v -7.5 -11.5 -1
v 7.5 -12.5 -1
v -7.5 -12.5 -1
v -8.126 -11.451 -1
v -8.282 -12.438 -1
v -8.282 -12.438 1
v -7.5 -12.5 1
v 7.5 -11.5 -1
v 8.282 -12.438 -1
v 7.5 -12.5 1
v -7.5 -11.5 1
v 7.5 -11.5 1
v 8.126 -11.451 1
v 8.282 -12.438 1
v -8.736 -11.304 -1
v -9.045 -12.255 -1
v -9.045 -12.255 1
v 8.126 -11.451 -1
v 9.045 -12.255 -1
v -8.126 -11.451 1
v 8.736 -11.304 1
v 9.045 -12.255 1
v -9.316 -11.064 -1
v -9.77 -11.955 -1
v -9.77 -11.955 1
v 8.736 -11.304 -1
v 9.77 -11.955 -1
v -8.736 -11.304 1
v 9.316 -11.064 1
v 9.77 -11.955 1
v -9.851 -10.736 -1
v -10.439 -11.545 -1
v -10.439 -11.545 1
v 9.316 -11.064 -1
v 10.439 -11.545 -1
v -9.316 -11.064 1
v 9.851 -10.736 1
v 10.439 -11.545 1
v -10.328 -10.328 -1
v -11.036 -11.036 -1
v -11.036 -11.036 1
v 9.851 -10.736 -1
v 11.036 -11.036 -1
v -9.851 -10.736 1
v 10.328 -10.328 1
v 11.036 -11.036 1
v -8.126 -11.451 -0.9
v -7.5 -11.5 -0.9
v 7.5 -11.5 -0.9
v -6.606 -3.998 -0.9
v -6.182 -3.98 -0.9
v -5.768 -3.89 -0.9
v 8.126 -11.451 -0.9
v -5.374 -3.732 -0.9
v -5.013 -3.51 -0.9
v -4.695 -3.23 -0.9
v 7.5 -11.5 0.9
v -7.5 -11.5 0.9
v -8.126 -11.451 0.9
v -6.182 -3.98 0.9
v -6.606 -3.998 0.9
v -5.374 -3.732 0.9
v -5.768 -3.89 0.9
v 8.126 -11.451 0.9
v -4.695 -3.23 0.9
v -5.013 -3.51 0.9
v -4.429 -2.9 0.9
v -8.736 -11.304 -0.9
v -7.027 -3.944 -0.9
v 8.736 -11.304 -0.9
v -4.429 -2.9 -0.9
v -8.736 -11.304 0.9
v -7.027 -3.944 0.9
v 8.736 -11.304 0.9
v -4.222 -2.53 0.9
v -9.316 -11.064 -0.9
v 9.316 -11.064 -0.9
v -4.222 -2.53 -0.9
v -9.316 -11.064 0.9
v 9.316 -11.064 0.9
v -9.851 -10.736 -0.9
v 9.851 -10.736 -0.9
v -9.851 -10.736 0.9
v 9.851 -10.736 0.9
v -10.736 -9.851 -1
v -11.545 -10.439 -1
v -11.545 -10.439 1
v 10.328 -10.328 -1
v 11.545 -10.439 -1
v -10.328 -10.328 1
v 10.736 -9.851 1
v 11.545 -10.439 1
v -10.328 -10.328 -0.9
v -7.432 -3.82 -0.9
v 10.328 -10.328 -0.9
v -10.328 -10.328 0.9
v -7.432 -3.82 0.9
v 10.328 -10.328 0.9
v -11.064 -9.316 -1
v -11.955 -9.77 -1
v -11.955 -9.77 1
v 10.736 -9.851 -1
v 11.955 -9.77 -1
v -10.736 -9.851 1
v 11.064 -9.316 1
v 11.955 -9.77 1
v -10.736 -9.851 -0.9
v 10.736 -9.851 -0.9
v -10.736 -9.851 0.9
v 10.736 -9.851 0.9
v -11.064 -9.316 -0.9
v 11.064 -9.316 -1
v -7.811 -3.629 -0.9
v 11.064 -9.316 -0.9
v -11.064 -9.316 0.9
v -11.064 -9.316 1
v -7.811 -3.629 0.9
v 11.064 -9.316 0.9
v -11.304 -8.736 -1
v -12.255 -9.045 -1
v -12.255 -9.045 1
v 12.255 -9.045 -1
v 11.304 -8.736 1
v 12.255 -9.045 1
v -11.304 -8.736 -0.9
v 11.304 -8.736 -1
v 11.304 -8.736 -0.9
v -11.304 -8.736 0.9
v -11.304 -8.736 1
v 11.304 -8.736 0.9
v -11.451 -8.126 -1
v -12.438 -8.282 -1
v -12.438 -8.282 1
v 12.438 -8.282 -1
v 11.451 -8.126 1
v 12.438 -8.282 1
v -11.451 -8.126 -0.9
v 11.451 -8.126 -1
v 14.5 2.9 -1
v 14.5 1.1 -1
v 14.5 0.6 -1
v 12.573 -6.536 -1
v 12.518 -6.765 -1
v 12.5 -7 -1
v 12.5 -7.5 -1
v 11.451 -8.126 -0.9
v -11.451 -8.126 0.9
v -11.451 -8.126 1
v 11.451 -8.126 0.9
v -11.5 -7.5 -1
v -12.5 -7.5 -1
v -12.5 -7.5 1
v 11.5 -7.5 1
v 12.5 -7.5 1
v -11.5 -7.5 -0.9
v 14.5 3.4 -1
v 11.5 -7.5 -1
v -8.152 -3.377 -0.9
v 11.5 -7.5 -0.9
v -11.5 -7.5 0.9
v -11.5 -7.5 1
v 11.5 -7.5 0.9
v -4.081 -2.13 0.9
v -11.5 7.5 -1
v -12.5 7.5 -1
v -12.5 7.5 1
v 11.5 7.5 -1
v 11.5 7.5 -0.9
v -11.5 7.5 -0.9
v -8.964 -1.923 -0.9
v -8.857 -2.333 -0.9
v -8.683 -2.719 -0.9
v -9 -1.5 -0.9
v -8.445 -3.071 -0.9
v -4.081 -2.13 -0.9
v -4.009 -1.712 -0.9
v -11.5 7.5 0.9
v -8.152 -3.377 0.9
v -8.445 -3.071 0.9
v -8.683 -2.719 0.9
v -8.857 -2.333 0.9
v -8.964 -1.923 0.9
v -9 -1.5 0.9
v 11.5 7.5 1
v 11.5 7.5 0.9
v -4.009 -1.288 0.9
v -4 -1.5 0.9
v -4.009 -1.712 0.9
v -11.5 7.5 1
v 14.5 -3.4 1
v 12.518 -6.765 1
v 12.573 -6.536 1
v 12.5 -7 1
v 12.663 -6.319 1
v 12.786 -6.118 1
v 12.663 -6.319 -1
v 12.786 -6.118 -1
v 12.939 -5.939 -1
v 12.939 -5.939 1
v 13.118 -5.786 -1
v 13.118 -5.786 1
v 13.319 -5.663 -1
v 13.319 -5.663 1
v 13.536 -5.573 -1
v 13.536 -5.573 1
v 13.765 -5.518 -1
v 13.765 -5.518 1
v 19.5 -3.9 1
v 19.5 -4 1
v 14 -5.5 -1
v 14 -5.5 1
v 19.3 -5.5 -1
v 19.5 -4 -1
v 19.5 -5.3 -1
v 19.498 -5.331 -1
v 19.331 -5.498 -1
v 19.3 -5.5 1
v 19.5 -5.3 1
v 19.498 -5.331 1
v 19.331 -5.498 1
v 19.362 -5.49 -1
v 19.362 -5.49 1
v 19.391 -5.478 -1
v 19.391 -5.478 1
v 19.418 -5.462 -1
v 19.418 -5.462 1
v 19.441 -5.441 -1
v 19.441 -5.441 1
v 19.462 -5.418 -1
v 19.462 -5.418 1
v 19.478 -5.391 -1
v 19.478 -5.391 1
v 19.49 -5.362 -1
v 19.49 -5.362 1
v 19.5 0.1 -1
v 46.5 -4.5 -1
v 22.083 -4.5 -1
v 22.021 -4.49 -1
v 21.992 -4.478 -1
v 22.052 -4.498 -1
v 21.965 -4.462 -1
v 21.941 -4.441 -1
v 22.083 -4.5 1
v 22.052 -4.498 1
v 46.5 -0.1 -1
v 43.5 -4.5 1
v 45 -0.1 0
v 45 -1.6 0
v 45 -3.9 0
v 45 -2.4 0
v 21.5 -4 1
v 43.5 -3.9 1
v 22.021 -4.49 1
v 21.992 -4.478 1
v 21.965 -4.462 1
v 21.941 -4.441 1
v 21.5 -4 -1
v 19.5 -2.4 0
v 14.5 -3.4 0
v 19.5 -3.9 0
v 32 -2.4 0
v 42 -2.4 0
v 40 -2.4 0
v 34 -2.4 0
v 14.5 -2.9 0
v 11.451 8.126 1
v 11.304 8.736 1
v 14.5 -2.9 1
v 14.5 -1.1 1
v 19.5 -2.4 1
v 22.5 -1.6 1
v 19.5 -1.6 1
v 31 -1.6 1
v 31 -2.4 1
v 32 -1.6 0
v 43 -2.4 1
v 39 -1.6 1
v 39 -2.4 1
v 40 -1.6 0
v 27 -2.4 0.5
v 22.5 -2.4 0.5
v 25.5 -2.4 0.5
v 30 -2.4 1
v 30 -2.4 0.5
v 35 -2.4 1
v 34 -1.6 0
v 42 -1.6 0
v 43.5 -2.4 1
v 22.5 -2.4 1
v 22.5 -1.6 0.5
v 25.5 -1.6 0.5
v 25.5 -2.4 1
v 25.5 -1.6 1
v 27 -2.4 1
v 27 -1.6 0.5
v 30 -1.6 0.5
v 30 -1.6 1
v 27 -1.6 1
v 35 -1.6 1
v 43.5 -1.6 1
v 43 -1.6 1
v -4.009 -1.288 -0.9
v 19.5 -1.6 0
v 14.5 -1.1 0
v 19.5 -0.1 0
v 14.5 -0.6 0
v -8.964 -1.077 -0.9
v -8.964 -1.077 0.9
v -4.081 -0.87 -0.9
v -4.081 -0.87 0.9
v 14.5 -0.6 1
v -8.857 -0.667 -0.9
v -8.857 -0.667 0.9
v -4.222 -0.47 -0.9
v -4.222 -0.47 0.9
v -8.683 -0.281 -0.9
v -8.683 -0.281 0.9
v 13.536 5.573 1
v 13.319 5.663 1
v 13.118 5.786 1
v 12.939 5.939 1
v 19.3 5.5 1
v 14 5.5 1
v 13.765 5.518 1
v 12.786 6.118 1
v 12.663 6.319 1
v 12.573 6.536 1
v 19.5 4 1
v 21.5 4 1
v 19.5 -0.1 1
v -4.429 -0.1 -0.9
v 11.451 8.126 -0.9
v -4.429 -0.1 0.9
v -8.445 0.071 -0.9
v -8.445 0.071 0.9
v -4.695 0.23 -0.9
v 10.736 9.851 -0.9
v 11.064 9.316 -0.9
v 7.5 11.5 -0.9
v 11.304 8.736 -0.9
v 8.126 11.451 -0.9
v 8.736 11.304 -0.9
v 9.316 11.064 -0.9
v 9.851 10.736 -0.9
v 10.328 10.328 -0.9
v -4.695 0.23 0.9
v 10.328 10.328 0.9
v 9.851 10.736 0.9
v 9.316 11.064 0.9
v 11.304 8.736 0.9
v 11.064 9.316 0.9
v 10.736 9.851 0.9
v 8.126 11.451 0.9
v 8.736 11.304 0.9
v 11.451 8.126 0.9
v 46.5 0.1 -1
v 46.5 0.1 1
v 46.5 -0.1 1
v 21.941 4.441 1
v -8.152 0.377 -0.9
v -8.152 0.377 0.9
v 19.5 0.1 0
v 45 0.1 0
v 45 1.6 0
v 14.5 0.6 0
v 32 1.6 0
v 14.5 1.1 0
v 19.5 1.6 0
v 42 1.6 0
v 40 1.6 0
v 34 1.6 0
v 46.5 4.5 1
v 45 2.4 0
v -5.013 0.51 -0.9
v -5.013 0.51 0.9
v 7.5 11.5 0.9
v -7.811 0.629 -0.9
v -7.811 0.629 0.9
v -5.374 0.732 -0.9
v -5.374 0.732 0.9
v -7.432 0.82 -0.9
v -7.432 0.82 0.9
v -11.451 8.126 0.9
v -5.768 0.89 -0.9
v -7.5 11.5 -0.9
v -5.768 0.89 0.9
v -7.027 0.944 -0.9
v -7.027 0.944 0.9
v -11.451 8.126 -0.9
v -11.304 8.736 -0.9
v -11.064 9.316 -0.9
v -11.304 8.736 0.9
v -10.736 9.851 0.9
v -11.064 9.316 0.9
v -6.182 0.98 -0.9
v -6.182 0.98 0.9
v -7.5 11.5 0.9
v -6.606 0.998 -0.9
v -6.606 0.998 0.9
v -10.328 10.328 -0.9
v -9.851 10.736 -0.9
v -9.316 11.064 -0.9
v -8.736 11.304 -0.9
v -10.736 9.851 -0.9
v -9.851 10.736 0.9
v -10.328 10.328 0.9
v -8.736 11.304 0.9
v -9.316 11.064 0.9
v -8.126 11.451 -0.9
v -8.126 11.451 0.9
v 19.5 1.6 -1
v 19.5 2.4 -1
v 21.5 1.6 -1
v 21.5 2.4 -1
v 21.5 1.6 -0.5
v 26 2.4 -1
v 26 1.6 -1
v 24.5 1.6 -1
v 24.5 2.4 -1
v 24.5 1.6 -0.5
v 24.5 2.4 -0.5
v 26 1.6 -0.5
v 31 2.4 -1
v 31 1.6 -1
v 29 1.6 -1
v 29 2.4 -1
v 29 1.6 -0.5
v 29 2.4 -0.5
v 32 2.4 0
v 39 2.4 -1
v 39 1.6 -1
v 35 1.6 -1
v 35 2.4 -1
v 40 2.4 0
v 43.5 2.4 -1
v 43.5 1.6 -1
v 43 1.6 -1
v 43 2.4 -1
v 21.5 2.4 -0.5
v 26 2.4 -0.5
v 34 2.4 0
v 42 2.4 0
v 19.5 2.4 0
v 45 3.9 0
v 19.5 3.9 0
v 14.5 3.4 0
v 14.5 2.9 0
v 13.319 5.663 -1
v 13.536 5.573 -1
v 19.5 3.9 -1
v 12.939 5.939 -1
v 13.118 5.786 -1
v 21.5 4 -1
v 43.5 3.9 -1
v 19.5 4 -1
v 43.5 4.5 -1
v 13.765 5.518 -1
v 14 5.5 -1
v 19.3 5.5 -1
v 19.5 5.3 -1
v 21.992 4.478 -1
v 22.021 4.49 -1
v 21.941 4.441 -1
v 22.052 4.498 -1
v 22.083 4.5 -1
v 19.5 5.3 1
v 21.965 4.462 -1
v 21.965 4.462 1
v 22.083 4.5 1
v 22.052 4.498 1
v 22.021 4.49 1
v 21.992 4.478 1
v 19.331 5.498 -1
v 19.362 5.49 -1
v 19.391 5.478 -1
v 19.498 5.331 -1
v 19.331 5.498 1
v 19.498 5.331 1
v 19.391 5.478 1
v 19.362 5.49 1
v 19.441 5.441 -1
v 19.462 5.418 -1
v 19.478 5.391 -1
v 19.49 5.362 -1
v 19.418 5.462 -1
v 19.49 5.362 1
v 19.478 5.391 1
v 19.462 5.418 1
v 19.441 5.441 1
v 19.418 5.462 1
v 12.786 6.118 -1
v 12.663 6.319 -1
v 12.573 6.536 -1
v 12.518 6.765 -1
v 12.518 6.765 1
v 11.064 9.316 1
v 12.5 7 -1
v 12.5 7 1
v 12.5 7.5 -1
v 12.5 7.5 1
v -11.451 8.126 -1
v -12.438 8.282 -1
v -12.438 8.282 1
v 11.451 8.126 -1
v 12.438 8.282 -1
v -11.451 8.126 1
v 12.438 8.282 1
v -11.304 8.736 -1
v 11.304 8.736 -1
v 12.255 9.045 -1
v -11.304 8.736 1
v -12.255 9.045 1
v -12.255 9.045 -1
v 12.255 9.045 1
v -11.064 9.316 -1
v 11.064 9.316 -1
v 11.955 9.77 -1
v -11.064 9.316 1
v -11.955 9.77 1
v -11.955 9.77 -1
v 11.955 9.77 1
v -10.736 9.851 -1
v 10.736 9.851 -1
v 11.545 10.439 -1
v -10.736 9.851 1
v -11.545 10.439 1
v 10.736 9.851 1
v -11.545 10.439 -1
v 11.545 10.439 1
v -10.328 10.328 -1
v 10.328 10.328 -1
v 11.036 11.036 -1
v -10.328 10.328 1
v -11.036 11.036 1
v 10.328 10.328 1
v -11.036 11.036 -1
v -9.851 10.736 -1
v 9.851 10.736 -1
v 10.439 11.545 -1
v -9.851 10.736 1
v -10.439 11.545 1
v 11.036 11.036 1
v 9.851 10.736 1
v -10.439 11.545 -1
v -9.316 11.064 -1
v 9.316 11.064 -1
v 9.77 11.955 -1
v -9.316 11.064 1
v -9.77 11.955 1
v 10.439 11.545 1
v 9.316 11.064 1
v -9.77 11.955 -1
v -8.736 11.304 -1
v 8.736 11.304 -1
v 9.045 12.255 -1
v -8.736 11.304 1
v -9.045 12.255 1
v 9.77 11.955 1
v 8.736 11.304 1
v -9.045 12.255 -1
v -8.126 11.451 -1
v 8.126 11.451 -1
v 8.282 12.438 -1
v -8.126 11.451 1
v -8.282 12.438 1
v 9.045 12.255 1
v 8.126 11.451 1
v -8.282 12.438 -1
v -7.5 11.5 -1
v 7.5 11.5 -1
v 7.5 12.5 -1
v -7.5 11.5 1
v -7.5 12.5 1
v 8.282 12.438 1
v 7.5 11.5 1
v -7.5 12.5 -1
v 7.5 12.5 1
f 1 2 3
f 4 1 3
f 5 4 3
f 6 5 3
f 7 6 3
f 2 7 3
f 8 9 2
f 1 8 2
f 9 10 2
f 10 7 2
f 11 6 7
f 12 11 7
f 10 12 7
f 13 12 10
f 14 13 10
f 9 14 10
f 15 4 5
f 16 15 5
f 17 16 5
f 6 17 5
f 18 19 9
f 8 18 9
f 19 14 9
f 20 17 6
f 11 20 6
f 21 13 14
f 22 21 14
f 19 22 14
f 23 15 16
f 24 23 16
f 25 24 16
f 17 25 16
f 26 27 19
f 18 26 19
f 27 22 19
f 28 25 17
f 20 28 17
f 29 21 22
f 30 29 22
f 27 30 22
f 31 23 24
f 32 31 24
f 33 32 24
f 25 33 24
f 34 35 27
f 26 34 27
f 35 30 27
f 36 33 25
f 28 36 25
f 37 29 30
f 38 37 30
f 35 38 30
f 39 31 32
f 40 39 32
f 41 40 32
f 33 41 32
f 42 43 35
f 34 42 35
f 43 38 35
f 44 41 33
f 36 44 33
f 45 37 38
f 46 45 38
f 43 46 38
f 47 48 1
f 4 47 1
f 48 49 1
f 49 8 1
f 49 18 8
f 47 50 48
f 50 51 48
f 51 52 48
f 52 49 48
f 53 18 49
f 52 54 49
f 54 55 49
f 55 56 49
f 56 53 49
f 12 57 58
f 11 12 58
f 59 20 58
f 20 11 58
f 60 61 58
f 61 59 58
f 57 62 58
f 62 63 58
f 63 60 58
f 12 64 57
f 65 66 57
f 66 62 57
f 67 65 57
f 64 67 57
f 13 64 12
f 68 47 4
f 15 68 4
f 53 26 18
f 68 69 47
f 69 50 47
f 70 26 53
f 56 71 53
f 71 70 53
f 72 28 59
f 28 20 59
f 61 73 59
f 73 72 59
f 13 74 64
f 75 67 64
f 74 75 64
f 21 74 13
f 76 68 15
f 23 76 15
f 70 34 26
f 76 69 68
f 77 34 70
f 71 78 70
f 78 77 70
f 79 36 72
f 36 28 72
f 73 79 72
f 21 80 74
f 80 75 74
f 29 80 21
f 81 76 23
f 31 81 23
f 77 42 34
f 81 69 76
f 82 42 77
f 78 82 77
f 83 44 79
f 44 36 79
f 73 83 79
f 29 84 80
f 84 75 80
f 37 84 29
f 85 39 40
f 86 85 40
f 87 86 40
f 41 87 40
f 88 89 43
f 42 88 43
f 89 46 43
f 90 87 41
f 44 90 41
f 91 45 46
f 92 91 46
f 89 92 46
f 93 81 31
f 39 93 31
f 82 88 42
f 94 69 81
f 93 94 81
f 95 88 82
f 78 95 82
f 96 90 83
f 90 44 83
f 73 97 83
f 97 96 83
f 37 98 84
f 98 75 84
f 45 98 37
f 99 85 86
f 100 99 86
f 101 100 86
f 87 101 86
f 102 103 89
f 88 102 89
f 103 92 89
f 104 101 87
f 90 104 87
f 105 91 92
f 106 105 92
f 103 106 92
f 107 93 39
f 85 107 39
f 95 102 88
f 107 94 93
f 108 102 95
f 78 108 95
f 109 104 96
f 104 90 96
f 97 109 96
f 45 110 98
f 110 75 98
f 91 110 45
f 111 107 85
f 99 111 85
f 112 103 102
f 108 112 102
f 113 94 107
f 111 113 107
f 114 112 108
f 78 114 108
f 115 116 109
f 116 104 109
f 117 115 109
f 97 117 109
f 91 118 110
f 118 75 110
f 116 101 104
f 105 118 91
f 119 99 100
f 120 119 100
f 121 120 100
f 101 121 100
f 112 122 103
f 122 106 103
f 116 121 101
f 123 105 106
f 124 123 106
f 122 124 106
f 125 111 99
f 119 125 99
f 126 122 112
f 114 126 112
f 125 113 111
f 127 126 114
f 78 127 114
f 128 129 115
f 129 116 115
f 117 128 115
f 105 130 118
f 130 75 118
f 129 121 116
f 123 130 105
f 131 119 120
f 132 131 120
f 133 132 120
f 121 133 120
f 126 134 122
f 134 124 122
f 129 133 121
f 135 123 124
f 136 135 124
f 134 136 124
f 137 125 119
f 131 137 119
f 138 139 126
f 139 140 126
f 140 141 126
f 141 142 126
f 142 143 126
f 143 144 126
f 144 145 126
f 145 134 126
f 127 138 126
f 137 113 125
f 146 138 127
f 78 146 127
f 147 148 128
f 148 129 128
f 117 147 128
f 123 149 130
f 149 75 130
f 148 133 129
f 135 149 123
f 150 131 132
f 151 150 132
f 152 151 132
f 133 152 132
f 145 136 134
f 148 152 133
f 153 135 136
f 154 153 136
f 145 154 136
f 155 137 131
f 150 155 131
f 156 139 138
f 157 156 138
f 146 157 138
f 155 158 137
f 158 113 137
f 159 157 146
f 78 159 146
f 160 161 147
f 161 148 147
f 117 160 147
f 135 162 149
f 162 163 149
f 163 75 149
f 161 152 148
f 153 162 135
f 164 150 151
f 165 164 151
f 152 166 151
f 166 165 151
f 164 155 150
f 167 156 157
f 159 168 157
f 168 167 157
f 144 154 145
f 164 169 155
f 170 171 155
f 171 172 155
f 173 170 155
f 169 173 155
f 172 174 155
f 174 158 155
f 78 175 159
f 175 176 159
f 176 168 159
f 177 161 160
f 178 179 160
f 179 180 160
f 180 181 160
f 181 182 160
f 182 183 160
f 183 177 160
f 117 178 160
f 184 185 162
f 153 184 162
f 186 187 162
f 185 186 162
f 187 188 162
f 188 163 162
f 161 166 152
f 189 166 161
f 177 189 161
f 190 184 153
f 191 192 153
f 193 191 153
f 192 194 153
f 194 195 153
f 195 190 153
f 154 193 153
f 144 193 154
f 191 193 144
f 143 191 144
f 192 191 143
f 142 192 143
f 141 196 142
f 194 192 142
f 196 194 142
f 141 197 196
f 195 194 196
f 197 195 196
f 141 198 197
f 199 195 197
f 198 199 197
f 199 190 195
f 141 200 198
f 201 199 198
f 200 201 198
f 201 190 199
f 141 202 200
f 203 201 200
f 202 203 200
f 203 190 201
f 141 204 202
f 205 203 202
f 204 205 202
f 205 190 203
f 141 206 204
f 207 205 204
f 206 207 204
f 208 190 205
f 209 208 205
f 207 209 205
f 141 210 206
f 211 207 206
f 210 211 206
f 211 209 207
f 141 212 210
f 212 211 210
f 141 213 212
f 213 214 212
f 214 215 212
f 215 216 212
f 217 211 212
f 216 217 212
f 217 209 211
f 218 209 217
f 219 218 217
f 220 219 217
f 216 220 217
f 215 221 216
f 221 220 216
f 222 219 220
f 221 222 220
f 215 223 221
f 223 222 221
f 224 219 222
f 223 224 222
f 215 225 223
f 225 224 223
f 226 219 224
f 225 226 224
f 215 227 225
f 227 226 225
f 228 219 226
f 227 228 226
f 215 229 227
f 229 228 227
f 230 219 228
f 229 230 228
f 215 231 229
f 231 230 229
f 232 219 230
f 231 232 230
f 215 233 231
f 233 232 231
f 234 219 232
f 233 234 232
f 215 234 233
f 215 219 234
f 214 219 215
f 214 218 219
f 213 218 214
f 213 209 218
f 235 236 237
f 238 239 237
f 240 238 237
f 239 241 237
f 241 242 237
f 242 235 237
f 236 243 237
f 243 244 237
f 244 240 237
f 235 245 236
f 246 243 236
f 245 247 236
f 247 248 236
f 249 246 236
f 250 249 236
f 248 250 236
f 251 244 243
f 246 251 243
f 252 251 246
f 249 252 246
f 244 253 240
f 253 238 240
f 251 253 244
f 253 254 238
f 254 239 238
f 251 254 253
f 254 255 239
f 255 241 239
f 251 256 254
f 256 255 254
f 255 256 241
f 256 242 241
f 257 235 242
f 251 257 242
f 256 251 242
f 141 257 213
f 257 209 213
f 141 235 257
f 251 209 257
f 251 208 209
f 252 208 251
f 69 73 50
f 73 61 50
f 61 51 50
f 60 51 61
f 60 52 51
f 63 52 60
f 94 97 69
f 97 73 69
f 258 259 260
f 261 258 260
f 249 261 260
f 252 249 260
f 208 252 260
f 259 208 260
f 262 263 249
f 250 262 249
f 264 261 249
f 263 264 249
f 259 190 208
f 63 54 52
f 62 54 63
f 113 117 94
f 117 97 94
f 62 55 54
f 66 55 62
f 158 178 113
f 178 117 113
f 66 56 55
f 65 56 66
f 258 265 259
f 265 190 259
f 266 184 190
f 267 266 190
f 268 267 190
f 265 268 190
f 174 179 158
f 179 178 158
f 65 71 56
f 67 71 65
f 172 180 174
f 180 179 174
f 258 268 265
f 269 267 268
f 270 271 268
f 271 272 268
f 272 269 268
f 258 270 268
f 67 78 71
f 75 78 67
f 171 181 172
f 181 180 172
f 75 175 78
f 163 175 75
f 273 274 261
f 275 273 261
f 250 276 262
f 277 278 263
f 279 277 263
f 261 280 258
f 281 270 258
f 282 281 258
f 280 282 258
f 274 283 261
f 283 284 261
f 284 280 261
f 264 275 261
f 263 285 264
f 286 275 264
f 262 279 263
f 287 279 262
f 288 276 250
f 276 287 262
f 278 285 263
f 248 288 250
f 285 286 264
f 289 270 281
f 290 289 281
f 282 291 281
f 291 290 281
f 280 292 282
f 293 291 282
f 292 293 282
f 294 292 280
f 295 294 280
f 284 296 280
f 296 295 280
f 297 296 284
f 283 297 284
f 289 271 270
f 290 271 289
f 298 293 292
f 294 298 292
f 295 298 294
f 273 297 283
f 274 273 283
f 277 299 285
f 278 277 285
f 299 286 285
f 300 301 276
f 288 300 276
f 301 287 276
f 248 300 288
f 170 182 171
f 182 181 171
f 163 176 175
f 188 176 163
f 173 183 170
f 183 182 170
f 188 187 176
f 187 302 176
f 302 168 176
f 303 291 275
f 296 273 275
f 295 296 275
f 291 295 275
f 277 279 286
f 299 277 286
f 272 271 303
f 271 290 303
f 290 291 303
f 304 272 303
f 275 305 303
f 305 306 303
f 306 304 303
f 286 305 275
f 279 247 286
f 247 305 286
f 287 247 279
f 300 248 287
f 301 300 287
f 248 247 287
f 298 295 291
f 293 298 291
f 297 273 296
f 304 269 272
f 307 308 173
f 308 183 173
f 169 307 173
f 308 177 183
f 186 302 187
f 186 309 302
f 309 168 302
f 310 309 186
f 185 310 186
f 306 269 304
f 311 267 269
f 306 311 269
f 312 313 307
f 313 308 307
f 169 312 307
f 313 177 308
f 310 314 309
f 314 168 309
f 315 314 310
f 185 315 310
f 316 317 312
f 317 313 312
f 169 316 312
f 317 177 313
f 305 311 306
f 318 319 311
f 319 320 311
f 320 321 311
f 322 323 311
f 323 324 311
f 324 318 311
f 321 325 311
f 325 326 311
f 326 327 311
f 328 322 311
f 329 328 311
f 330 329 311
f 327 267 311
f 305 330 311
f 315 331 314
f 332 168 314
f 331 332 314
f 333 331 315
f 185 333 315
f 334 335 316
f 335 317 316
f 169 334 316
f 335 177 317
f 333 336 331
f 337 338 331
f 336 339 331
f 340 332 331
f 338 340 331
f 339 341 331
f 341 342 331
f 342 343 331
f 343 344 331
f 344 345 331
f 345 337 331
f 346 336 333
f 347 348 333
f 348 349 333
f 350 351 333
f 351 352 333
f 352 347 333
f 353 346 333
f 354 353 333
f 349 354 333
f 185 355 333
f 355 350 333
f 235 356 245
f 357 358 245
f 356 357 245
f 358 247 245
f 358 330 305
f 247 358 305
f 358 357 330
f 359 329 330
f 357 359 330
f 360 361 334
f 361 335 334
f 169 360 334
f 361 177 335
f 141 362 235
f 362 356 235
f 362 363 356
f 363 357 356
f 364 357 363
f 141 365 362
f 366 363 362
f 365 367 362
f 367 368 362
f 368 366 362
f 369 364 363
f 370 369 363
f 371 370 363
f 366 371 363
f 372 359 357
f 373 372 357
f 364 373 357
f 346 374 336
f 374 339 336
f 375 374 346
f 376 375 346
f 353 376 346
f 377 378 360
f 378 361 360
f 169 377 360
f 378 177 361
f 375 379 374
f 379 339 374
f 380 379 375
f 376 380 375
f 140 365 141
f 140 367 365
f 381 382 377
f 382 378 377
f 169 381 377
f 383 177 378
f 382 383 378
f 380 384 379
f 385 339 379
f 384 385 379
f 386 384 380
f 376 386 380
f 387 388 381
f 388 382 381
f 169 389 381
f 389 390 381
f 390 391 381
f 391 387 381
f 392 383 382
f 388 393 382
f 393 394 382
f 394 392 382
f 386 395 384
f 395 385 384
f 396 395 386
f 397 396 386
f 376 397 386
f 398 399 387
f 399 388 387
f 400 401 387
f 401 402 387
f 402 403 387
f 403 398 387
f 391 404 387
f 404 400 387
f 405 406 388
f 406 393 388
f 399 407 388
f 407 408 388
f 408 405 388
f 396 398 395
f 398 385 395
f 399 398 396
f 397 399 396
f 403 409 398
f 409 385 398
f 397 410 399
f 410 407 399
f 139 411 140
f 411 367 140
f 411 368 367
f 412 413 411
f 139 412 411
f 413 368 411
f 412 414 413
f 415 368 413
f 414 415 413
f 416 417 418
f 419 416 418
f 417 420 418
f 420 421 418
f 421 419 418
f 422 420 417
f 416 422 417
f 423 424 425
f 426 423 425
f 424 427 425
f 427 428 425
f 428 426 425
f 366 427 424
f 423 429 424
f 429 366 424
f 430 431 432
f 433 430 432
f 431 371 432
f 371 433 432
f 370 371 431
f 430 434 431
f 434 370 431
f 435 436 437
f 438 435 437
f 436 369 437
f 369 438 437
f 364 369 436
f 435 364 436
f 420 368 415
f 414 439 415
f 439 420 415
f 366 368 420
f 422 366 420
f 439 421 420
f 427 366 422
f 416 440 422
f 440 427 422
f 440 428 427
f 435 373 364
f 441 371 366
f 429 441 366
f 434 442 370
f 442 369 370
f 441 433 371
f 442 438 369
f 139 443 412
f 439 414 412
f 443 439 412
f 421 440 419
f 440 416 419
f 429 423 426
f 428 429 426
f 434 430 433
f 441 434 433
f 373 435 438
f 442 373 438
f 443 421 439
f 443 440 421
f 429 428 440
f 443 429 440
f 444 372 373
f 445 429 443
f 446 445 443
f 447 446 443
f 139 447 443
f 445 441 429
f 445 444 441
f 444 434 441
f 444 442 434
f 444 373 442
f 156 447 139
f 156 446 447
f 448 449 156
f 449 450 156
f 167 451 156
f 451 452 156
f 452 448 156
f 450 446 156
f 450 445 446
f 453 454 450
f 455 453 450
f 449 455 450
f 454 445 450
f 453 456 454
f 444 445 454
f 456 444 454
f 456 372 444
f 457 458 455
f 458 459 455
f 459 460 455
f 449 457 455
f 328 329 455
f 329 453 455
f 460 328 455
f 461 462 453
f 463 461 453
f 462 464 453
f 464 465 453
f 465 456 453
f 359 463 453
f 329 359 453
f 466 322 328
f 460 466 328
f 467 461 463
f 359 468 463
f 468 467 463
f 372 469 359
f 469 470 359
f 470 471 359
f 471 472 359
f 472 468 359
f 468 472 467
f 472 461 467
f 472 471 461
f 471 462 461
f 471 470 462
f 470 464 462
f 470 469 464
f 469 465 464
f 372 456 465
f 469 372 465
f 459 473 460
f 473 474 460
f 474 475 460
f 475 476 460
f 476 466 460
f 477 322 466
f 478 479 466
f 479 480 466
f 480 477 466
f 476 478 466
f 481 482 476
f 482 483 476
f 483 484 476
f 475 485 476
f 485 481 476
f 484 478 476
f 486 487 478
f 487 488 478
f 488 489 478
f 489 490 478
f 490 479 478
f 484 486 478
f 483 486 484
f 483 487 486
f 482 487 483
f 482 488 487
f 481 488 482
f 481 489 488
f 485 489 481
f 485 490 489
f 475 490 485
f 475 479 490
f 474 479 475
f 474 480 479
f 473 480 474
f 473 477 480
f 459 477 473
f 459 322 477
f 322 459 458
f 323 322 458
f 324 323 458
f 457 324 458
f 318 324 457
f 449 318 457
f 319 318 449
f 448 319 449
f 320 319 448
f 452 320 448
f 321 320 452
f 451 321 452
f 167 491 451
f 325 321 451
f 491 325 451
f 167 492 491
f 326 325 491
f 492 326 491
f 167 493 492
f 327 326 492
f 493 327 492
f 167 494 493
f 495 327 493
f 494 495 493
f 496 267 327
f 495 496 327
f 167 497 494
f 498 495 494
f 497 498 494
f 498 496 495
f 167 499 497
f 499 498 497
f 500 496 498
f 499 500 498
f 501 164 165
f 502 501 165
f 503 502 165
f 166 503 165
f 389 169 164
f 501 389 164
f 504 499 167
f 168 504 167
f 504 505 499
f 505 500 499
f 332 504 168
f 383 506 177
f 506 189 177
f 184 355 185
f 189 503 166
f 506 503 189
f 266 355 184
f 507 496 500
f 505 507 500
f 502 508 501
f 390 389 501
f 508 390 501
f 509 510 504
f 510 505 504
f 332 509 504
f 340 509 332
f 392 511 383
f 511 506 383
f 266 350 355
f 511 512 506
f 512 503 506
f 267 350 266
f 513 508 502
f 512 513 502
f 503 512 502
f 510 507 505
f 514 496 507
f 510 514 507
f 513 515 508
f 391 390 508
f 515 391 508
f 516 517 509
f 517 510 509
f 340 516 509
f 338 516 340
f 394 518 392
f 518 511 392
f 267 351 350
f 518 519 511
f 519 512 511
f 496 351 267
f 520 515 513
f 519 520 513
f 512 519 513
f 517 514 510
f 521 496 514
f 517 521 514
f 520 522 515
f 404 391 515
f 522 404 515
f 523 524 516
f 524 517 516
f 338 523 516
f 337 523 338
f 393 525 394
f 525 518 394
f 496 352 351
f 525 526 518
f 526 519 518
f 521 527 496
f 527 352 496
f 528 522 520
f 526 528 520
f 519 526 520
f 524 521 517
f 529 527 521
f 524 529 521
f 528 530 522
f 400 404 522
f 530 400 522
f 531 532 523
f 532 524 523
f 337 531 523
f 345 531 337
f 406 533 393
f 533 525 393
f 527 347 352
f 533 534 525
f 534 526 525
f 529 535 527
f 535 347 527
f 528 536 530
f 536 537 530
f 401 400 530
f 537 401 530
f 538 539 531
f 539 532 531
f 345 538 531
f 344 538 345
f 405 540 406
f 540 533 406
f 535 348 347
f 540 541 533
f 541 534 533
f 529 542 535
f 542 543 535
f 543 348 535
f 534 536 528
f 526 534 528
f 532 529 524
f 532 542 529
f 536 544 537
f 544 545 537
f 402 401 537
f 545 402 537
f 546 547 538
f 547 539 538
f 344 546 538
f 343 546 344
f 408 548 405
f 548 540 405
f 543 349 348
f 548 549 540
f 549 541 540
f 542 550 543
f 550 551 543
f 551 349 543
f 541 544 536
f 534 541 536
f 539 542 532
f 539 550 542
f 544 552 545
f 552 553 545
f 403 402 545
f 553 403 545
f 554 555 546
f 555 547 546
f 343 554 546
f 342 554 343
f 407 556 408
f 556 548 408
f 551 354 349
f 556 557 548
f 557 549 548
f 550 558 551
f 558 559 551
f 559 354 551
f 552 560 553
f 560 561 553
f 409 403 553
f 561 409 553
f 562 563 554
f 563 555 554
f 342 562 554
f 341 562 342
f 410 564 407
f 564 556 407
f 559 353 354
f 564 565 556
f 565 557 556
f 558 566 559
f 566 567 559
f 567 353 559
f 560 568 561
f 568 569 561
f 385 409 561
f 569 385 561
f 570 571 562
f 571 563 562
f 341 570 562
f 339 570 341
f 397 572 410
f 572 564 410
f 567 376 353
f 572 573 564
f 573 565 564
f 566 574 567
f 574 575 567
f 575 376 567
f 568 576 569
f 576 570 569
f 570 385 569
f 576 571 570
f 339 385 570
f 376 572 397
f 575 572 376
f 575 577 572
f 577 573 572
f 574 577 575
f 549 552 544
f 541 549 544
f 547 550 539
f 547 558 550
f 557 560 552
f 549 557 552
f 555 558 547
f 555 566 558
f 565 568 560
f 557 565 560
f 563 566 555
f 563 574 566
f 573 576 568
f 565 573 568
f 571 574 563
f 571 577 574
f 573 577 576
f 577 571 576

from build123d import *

# Parameters (mm, degrees)
SKETCH1_R            = 2.5
BOSS_EXTRUDE1_DEPTH  = 1
CUT_EXTRUDE2_DEPTH   = 0.1
CUT_EXTRUDE3_DEPTH   = 2
FILLET1_R            = 0.2
FILLET1_OF_MIRROR2_R = 0.2
CUT_EXTRUDE4_DEPTH   = 1
LPATTERN1_COUNT      = 2
LPATTERN1_PITCH      = 2.3
SKETCH5_W            = 3
SKETCH5_H            = 0.8
CUT_EXTRUDE5_DEPTH   = 0.5
CUT_EXTRUDE6_DEPTH   = 0.8
CUT_EXTRUDE7_REACH   = 51.52
CUT_EXTRUDE8_DEPTH   = 1
LPATTERN2_COUNT      = 2
LPATTERN2_PITCH      = 2.3
SKETCH9_W            = 3
SKETCH9_H            = 0.8
CUT_EXTRUDE9_DEPTH   = 0.5
CUT_EXTRUDE10_DEPTH  = 0.8
CUT_EXTRUDE11_REACH  = 51.52


with BuildPart() as part:
    # Sketch1 → Boss-Extrude1 (new, symmetric)
    with BuildSketch(Plane.XY):
        with BuildLine():
            Line((-7.5, 12.5), (7.5, 12.5))
            ThreePointArc((7.5, 12.5), (11.035533906, 11.035533906), (12.5, 7.5))
            Line((12.5, 7.5), (12.5, 7))
            ThreePointArc((12.5, 7), (12.939339828, 5.939339828), (14, 5.5))
            Line((14, 5.5), (46.5, 5.5))
            Line((46.5, 5.5), (46.5, -5.5))
            Line((46.5, -5.5), (14, -5.5))
            ThreePointArc((14, -5.5), (12.939339828, -5.939339828), (12.5, -7))
            Line((12.5, -7), (12.5, -7.5))
            ThreePointArc((12.5, -7.5), (11.035533906, -11.035533906), (7.5, -12.5))
            Line((7.5, -12.5), (-7.5, -12.5))
            ThreePointArc((-7.5, -12.5), (-11.035533906, -11.035533906), (-12.5, -7.5))
            Line((-12.5, -7.5), (-12.5, 7.5))
            ThreePointArc((-12.5, 7.5), (-11.035533906, 11.035533906), (-7.5, 12.5))
        make_face()
        with Locations((-6.5, -1.5)):
            Circle(SKETCH1_R, mode=Mode.SUBTRACT)
    extrude(amount=BOSS_EXTRUDE1_DEPTH, both=True)

    # Sketch2 → Cut-Extrude2 (cut)
    with BuildSketch(Plane.XY.offset(1)):
        with BuildLine():
            Line((11.5, 7), (11.5, 7.5))
            ThreePointArc((11.5, 7.5), (10.328427125, 10.328427125), (7.5, 11.5))
            Line((7.5, 11.5), (-7.5, 11.5))
            ThreePointArc((-7.5, 11.5), (-10.328427125, 10.328427125), (-11.5, 7.5))
            Line((-11.5, 7.5), (-11.5, -7.5))
            ThreePointArc((-11.5, -7.5), (-10.328427125, -10.328427125), (-7.5, -11.5))
            Line((-7.5, -11.5), (7.5, -11.5))
            ThreePointArc((7.5, -11.5), (10.328427125, -10.328427125), (11.5, -7.5))
            Line((11.5, -7.5), (11.5, -7))
            Line((11.5, -7), (11.5, 7))
        make_face()
    cut_extrude2 = extrude(amount=-CUT_EXTRUDE2_DEPTH, mode=Mode.SUBTRACT)

    # Mirror1: Cut-Extrude2 across plane
    add(cut_extrude2.mirror(Plane.XY), mode=Mode.SUBTRACT)

    # Sketch3 → Cut-Extrude3 (cut)
    with BuildSketch(Plane.XY.offset(1)):
        Polygon((19.5, 5.5), (19.5, 4), (21.5, 4), (22, 4.5), (46.5, 4.5), (46.5, 5.5), align=None)
    cut_extrude3 = extrude(amount=-CUT_EXTRUDE3_DEPTH, mode=Mode.SUBTRACT)

    # Fillet1
    fillet1_edges = [part.edges().sort_by_distance(p)[0] for p in [
        (19.5, 5.5, 0),
        (22, 4.5, 0),
    ]]
    fillet(fillet1_edges, radius=FILLET1_R)

    # Mirror2: Cut-Extrude3 across plane
    add(cut_extrude3.mirror(Plane.ZX), mode=Mode.SUBTRACT)

    # Fillet1 of Mirror2
    fillet1_of_mirror2_edges = [part.edges().sort_by_distance(p)[0] for p in [
        (19.5, -5.5, 0),
        (22, -4.5, 0),
    ]]
    fillet(fillet1_of_mirror2_edges, radius=FILLET1_OF_MIRROR2_R)

    # Sketch4 → Cut-Extrude4 (cut)
    with BuildSketch(Plane.XY.offset(1)):
        Polygon((46.5, -0.1), (19.5, -0.1), (14.5, -0.6), (14.5, -1.1), (19.5, -1.6), (46.5, -1.6), align=None)
    cut_extrude4 = extrude(amount=-CUT_EXTRUDE4_DEPTH, mode=Mode.SUBTRACT)

    # LPattern1: Cut-Extrude4 ×2
    with Locations(*[(0, -i * LPATTERN1_PITCH, 0) for i in range(1, LPATTERN1_COUNT)]):
        add(cut_extrude4, mode=Mode.SUBTRACT)

    # Sketch5 → Cut-Extrude5 (cut)
    with BuildSketch(Plane.XY.offset(1)):
        with Locations((24, -2)):
            Rectangle(SKETCH5_W, SKETCH5_H)
        with Locations((28.5, -2)):
            Rectangle(SKETCH5_W, SKETCH5_H)
    extrude(amount=-CUT_EXTRUDE5_DEPTH, mode=Mode.SUBTRACT)

    # Sketch6 → Cut-Extrude6 (cut)
    with BuildSketch(Plane.XZ.offset(2.4)):
        Polygon((35, 1), (31, 1), (32, 0), (34, 0), align=None)
        Polygon((43, 1), (39, 1), (40, 0), (42, 0), align=None)
    extrude(amount=-CUT_EXTRUDE6_DEPTH, mode=Mode.SUBTRACT)

    # Cut-Extrude7: up to this face of the body (flat: up to its plane)
    cut_extrude7_end = Plane(part.part.faces().sort_by_distance((33, -0.1, 0.5))[0])
    # Sketch7 → Cut-Extrude7 (cut, up to the picked face)
    with BuildSketch(Plane.XZ.offset(4.5), mode=Mode.PRIVATE) as cut_extrude7_sk1:
        Polygon((46.5, -1), (43.5, 1), (46.5, 1), align=None)
    cut_extrude7_tool1 = split(extrude(cut_extrude7_sk1.sketch, amount=-CUT_EXTRUDE7_REACH, mode=Mode.PRIVATE), bisect_by=cut_extrude7_end, keep=Keep.BOTH, mode=Mode.PRIVATE)
    add(cut_extrude7_tool1.solids().sort_by(Axis((45.5, -4.5, 0.333333), (0, 1, 0)))[0], mode=Mode.SUBTRACT)

    # Sketch8 → Cut-Extrude8 (cut)
    with BuildSketch(Plane(origin=(0, 0, -1), x_dir=(-1, 0, 0), z_dir=(0, 0, -1))):
        Polygon((-46.5, 0.1), (-19.5, 0.1), (-14.5, 0.6), (-14.5, 1.1), (-19.5, 1.6), (-46.5, 1.6), align=None)
    cut_extrude8 = extrude(amount=-CUT_EXTRUDE8_DEPTH, mode=Mode.SUBTRACT)

    # LPattern2: Cut-Extrude8 ×2
    with Locations(*[(0, i * LPATTERN2_PITCH, 0) for i in range(1, LPATTERN2_COUNT)]):
        add(cut_extrude8, mode=Mode.SUBTRACT)

    # Sketch9 → Cut-Extrude9 (cut)
    with BuildSketch(Plane(origin=(0, 0, -1), x_dir=(-1, 0, 0), z_dir=(0, 0, -1))):
        with Locations((-23, 2)):
            Rectangle(SKETCH9_W, SKETCH9_H)
        with Locations((-27.5, 2)):
            Rectangle(SKETCH9_W, SKETCH9_H)
    extrude(amount=-CUT_EXTRUDE9_DEPTH, mode=Mode.SUBTRACT)

    # Sketch10 → Cut-Extrude10 (cut)
    with BuildSketch(Plane(origin=(0, 2.4, 0), x_dir=(1, 0, 0), z_dir=(0, 1, 0))):
        Polygon((31, 1), (32, 0), (34, 0), (35, 1), align=None)
        Polygon((39, 1), (40, 0), (42, 0), (43, 1), align=None)
    extrude(amount=-CUT_EXTRUDE10_DEPTH, mode=Mode.SUBTRACT)

    # Cut-Extrude11: up to this face of the body (flat: up to its plane)
    cut_extrude11_end = Plane(part.part.faces().sort_by_distance((33, 0.1, -0.5))[0])
    # Sketch11 → Cut-Extrude11 (cut, up to the picked face)
    with BuildSketch(Plane(origin=(0, 4.5, 0), x_dir=(1, 0, 0), z_dir=(0, 1, 0)), mode=Mode.PRIVATE) as cut_extrude11_sk1:
        Polygon((46.5, -1), (43.5, 1), (46.5, 1), align=None)
    cut_extrude11_tool1 = split(extrude(cut_extrude11_sk1.sketch, amount=-CUT_EXTRUDE11_REACH, mode=Mode.PRIVATE), bisect_by=cut_extrude11_end, keep=Keep.BOTH, mode=Mode.PRIVATE)
    add(cut_extrude11_tool1.solids().sort_by(Axis((45.5, 4.5, -0.333333), (0, -1, 0)))[0], mode=Mode.SUBTRACT)


solid = part.part
